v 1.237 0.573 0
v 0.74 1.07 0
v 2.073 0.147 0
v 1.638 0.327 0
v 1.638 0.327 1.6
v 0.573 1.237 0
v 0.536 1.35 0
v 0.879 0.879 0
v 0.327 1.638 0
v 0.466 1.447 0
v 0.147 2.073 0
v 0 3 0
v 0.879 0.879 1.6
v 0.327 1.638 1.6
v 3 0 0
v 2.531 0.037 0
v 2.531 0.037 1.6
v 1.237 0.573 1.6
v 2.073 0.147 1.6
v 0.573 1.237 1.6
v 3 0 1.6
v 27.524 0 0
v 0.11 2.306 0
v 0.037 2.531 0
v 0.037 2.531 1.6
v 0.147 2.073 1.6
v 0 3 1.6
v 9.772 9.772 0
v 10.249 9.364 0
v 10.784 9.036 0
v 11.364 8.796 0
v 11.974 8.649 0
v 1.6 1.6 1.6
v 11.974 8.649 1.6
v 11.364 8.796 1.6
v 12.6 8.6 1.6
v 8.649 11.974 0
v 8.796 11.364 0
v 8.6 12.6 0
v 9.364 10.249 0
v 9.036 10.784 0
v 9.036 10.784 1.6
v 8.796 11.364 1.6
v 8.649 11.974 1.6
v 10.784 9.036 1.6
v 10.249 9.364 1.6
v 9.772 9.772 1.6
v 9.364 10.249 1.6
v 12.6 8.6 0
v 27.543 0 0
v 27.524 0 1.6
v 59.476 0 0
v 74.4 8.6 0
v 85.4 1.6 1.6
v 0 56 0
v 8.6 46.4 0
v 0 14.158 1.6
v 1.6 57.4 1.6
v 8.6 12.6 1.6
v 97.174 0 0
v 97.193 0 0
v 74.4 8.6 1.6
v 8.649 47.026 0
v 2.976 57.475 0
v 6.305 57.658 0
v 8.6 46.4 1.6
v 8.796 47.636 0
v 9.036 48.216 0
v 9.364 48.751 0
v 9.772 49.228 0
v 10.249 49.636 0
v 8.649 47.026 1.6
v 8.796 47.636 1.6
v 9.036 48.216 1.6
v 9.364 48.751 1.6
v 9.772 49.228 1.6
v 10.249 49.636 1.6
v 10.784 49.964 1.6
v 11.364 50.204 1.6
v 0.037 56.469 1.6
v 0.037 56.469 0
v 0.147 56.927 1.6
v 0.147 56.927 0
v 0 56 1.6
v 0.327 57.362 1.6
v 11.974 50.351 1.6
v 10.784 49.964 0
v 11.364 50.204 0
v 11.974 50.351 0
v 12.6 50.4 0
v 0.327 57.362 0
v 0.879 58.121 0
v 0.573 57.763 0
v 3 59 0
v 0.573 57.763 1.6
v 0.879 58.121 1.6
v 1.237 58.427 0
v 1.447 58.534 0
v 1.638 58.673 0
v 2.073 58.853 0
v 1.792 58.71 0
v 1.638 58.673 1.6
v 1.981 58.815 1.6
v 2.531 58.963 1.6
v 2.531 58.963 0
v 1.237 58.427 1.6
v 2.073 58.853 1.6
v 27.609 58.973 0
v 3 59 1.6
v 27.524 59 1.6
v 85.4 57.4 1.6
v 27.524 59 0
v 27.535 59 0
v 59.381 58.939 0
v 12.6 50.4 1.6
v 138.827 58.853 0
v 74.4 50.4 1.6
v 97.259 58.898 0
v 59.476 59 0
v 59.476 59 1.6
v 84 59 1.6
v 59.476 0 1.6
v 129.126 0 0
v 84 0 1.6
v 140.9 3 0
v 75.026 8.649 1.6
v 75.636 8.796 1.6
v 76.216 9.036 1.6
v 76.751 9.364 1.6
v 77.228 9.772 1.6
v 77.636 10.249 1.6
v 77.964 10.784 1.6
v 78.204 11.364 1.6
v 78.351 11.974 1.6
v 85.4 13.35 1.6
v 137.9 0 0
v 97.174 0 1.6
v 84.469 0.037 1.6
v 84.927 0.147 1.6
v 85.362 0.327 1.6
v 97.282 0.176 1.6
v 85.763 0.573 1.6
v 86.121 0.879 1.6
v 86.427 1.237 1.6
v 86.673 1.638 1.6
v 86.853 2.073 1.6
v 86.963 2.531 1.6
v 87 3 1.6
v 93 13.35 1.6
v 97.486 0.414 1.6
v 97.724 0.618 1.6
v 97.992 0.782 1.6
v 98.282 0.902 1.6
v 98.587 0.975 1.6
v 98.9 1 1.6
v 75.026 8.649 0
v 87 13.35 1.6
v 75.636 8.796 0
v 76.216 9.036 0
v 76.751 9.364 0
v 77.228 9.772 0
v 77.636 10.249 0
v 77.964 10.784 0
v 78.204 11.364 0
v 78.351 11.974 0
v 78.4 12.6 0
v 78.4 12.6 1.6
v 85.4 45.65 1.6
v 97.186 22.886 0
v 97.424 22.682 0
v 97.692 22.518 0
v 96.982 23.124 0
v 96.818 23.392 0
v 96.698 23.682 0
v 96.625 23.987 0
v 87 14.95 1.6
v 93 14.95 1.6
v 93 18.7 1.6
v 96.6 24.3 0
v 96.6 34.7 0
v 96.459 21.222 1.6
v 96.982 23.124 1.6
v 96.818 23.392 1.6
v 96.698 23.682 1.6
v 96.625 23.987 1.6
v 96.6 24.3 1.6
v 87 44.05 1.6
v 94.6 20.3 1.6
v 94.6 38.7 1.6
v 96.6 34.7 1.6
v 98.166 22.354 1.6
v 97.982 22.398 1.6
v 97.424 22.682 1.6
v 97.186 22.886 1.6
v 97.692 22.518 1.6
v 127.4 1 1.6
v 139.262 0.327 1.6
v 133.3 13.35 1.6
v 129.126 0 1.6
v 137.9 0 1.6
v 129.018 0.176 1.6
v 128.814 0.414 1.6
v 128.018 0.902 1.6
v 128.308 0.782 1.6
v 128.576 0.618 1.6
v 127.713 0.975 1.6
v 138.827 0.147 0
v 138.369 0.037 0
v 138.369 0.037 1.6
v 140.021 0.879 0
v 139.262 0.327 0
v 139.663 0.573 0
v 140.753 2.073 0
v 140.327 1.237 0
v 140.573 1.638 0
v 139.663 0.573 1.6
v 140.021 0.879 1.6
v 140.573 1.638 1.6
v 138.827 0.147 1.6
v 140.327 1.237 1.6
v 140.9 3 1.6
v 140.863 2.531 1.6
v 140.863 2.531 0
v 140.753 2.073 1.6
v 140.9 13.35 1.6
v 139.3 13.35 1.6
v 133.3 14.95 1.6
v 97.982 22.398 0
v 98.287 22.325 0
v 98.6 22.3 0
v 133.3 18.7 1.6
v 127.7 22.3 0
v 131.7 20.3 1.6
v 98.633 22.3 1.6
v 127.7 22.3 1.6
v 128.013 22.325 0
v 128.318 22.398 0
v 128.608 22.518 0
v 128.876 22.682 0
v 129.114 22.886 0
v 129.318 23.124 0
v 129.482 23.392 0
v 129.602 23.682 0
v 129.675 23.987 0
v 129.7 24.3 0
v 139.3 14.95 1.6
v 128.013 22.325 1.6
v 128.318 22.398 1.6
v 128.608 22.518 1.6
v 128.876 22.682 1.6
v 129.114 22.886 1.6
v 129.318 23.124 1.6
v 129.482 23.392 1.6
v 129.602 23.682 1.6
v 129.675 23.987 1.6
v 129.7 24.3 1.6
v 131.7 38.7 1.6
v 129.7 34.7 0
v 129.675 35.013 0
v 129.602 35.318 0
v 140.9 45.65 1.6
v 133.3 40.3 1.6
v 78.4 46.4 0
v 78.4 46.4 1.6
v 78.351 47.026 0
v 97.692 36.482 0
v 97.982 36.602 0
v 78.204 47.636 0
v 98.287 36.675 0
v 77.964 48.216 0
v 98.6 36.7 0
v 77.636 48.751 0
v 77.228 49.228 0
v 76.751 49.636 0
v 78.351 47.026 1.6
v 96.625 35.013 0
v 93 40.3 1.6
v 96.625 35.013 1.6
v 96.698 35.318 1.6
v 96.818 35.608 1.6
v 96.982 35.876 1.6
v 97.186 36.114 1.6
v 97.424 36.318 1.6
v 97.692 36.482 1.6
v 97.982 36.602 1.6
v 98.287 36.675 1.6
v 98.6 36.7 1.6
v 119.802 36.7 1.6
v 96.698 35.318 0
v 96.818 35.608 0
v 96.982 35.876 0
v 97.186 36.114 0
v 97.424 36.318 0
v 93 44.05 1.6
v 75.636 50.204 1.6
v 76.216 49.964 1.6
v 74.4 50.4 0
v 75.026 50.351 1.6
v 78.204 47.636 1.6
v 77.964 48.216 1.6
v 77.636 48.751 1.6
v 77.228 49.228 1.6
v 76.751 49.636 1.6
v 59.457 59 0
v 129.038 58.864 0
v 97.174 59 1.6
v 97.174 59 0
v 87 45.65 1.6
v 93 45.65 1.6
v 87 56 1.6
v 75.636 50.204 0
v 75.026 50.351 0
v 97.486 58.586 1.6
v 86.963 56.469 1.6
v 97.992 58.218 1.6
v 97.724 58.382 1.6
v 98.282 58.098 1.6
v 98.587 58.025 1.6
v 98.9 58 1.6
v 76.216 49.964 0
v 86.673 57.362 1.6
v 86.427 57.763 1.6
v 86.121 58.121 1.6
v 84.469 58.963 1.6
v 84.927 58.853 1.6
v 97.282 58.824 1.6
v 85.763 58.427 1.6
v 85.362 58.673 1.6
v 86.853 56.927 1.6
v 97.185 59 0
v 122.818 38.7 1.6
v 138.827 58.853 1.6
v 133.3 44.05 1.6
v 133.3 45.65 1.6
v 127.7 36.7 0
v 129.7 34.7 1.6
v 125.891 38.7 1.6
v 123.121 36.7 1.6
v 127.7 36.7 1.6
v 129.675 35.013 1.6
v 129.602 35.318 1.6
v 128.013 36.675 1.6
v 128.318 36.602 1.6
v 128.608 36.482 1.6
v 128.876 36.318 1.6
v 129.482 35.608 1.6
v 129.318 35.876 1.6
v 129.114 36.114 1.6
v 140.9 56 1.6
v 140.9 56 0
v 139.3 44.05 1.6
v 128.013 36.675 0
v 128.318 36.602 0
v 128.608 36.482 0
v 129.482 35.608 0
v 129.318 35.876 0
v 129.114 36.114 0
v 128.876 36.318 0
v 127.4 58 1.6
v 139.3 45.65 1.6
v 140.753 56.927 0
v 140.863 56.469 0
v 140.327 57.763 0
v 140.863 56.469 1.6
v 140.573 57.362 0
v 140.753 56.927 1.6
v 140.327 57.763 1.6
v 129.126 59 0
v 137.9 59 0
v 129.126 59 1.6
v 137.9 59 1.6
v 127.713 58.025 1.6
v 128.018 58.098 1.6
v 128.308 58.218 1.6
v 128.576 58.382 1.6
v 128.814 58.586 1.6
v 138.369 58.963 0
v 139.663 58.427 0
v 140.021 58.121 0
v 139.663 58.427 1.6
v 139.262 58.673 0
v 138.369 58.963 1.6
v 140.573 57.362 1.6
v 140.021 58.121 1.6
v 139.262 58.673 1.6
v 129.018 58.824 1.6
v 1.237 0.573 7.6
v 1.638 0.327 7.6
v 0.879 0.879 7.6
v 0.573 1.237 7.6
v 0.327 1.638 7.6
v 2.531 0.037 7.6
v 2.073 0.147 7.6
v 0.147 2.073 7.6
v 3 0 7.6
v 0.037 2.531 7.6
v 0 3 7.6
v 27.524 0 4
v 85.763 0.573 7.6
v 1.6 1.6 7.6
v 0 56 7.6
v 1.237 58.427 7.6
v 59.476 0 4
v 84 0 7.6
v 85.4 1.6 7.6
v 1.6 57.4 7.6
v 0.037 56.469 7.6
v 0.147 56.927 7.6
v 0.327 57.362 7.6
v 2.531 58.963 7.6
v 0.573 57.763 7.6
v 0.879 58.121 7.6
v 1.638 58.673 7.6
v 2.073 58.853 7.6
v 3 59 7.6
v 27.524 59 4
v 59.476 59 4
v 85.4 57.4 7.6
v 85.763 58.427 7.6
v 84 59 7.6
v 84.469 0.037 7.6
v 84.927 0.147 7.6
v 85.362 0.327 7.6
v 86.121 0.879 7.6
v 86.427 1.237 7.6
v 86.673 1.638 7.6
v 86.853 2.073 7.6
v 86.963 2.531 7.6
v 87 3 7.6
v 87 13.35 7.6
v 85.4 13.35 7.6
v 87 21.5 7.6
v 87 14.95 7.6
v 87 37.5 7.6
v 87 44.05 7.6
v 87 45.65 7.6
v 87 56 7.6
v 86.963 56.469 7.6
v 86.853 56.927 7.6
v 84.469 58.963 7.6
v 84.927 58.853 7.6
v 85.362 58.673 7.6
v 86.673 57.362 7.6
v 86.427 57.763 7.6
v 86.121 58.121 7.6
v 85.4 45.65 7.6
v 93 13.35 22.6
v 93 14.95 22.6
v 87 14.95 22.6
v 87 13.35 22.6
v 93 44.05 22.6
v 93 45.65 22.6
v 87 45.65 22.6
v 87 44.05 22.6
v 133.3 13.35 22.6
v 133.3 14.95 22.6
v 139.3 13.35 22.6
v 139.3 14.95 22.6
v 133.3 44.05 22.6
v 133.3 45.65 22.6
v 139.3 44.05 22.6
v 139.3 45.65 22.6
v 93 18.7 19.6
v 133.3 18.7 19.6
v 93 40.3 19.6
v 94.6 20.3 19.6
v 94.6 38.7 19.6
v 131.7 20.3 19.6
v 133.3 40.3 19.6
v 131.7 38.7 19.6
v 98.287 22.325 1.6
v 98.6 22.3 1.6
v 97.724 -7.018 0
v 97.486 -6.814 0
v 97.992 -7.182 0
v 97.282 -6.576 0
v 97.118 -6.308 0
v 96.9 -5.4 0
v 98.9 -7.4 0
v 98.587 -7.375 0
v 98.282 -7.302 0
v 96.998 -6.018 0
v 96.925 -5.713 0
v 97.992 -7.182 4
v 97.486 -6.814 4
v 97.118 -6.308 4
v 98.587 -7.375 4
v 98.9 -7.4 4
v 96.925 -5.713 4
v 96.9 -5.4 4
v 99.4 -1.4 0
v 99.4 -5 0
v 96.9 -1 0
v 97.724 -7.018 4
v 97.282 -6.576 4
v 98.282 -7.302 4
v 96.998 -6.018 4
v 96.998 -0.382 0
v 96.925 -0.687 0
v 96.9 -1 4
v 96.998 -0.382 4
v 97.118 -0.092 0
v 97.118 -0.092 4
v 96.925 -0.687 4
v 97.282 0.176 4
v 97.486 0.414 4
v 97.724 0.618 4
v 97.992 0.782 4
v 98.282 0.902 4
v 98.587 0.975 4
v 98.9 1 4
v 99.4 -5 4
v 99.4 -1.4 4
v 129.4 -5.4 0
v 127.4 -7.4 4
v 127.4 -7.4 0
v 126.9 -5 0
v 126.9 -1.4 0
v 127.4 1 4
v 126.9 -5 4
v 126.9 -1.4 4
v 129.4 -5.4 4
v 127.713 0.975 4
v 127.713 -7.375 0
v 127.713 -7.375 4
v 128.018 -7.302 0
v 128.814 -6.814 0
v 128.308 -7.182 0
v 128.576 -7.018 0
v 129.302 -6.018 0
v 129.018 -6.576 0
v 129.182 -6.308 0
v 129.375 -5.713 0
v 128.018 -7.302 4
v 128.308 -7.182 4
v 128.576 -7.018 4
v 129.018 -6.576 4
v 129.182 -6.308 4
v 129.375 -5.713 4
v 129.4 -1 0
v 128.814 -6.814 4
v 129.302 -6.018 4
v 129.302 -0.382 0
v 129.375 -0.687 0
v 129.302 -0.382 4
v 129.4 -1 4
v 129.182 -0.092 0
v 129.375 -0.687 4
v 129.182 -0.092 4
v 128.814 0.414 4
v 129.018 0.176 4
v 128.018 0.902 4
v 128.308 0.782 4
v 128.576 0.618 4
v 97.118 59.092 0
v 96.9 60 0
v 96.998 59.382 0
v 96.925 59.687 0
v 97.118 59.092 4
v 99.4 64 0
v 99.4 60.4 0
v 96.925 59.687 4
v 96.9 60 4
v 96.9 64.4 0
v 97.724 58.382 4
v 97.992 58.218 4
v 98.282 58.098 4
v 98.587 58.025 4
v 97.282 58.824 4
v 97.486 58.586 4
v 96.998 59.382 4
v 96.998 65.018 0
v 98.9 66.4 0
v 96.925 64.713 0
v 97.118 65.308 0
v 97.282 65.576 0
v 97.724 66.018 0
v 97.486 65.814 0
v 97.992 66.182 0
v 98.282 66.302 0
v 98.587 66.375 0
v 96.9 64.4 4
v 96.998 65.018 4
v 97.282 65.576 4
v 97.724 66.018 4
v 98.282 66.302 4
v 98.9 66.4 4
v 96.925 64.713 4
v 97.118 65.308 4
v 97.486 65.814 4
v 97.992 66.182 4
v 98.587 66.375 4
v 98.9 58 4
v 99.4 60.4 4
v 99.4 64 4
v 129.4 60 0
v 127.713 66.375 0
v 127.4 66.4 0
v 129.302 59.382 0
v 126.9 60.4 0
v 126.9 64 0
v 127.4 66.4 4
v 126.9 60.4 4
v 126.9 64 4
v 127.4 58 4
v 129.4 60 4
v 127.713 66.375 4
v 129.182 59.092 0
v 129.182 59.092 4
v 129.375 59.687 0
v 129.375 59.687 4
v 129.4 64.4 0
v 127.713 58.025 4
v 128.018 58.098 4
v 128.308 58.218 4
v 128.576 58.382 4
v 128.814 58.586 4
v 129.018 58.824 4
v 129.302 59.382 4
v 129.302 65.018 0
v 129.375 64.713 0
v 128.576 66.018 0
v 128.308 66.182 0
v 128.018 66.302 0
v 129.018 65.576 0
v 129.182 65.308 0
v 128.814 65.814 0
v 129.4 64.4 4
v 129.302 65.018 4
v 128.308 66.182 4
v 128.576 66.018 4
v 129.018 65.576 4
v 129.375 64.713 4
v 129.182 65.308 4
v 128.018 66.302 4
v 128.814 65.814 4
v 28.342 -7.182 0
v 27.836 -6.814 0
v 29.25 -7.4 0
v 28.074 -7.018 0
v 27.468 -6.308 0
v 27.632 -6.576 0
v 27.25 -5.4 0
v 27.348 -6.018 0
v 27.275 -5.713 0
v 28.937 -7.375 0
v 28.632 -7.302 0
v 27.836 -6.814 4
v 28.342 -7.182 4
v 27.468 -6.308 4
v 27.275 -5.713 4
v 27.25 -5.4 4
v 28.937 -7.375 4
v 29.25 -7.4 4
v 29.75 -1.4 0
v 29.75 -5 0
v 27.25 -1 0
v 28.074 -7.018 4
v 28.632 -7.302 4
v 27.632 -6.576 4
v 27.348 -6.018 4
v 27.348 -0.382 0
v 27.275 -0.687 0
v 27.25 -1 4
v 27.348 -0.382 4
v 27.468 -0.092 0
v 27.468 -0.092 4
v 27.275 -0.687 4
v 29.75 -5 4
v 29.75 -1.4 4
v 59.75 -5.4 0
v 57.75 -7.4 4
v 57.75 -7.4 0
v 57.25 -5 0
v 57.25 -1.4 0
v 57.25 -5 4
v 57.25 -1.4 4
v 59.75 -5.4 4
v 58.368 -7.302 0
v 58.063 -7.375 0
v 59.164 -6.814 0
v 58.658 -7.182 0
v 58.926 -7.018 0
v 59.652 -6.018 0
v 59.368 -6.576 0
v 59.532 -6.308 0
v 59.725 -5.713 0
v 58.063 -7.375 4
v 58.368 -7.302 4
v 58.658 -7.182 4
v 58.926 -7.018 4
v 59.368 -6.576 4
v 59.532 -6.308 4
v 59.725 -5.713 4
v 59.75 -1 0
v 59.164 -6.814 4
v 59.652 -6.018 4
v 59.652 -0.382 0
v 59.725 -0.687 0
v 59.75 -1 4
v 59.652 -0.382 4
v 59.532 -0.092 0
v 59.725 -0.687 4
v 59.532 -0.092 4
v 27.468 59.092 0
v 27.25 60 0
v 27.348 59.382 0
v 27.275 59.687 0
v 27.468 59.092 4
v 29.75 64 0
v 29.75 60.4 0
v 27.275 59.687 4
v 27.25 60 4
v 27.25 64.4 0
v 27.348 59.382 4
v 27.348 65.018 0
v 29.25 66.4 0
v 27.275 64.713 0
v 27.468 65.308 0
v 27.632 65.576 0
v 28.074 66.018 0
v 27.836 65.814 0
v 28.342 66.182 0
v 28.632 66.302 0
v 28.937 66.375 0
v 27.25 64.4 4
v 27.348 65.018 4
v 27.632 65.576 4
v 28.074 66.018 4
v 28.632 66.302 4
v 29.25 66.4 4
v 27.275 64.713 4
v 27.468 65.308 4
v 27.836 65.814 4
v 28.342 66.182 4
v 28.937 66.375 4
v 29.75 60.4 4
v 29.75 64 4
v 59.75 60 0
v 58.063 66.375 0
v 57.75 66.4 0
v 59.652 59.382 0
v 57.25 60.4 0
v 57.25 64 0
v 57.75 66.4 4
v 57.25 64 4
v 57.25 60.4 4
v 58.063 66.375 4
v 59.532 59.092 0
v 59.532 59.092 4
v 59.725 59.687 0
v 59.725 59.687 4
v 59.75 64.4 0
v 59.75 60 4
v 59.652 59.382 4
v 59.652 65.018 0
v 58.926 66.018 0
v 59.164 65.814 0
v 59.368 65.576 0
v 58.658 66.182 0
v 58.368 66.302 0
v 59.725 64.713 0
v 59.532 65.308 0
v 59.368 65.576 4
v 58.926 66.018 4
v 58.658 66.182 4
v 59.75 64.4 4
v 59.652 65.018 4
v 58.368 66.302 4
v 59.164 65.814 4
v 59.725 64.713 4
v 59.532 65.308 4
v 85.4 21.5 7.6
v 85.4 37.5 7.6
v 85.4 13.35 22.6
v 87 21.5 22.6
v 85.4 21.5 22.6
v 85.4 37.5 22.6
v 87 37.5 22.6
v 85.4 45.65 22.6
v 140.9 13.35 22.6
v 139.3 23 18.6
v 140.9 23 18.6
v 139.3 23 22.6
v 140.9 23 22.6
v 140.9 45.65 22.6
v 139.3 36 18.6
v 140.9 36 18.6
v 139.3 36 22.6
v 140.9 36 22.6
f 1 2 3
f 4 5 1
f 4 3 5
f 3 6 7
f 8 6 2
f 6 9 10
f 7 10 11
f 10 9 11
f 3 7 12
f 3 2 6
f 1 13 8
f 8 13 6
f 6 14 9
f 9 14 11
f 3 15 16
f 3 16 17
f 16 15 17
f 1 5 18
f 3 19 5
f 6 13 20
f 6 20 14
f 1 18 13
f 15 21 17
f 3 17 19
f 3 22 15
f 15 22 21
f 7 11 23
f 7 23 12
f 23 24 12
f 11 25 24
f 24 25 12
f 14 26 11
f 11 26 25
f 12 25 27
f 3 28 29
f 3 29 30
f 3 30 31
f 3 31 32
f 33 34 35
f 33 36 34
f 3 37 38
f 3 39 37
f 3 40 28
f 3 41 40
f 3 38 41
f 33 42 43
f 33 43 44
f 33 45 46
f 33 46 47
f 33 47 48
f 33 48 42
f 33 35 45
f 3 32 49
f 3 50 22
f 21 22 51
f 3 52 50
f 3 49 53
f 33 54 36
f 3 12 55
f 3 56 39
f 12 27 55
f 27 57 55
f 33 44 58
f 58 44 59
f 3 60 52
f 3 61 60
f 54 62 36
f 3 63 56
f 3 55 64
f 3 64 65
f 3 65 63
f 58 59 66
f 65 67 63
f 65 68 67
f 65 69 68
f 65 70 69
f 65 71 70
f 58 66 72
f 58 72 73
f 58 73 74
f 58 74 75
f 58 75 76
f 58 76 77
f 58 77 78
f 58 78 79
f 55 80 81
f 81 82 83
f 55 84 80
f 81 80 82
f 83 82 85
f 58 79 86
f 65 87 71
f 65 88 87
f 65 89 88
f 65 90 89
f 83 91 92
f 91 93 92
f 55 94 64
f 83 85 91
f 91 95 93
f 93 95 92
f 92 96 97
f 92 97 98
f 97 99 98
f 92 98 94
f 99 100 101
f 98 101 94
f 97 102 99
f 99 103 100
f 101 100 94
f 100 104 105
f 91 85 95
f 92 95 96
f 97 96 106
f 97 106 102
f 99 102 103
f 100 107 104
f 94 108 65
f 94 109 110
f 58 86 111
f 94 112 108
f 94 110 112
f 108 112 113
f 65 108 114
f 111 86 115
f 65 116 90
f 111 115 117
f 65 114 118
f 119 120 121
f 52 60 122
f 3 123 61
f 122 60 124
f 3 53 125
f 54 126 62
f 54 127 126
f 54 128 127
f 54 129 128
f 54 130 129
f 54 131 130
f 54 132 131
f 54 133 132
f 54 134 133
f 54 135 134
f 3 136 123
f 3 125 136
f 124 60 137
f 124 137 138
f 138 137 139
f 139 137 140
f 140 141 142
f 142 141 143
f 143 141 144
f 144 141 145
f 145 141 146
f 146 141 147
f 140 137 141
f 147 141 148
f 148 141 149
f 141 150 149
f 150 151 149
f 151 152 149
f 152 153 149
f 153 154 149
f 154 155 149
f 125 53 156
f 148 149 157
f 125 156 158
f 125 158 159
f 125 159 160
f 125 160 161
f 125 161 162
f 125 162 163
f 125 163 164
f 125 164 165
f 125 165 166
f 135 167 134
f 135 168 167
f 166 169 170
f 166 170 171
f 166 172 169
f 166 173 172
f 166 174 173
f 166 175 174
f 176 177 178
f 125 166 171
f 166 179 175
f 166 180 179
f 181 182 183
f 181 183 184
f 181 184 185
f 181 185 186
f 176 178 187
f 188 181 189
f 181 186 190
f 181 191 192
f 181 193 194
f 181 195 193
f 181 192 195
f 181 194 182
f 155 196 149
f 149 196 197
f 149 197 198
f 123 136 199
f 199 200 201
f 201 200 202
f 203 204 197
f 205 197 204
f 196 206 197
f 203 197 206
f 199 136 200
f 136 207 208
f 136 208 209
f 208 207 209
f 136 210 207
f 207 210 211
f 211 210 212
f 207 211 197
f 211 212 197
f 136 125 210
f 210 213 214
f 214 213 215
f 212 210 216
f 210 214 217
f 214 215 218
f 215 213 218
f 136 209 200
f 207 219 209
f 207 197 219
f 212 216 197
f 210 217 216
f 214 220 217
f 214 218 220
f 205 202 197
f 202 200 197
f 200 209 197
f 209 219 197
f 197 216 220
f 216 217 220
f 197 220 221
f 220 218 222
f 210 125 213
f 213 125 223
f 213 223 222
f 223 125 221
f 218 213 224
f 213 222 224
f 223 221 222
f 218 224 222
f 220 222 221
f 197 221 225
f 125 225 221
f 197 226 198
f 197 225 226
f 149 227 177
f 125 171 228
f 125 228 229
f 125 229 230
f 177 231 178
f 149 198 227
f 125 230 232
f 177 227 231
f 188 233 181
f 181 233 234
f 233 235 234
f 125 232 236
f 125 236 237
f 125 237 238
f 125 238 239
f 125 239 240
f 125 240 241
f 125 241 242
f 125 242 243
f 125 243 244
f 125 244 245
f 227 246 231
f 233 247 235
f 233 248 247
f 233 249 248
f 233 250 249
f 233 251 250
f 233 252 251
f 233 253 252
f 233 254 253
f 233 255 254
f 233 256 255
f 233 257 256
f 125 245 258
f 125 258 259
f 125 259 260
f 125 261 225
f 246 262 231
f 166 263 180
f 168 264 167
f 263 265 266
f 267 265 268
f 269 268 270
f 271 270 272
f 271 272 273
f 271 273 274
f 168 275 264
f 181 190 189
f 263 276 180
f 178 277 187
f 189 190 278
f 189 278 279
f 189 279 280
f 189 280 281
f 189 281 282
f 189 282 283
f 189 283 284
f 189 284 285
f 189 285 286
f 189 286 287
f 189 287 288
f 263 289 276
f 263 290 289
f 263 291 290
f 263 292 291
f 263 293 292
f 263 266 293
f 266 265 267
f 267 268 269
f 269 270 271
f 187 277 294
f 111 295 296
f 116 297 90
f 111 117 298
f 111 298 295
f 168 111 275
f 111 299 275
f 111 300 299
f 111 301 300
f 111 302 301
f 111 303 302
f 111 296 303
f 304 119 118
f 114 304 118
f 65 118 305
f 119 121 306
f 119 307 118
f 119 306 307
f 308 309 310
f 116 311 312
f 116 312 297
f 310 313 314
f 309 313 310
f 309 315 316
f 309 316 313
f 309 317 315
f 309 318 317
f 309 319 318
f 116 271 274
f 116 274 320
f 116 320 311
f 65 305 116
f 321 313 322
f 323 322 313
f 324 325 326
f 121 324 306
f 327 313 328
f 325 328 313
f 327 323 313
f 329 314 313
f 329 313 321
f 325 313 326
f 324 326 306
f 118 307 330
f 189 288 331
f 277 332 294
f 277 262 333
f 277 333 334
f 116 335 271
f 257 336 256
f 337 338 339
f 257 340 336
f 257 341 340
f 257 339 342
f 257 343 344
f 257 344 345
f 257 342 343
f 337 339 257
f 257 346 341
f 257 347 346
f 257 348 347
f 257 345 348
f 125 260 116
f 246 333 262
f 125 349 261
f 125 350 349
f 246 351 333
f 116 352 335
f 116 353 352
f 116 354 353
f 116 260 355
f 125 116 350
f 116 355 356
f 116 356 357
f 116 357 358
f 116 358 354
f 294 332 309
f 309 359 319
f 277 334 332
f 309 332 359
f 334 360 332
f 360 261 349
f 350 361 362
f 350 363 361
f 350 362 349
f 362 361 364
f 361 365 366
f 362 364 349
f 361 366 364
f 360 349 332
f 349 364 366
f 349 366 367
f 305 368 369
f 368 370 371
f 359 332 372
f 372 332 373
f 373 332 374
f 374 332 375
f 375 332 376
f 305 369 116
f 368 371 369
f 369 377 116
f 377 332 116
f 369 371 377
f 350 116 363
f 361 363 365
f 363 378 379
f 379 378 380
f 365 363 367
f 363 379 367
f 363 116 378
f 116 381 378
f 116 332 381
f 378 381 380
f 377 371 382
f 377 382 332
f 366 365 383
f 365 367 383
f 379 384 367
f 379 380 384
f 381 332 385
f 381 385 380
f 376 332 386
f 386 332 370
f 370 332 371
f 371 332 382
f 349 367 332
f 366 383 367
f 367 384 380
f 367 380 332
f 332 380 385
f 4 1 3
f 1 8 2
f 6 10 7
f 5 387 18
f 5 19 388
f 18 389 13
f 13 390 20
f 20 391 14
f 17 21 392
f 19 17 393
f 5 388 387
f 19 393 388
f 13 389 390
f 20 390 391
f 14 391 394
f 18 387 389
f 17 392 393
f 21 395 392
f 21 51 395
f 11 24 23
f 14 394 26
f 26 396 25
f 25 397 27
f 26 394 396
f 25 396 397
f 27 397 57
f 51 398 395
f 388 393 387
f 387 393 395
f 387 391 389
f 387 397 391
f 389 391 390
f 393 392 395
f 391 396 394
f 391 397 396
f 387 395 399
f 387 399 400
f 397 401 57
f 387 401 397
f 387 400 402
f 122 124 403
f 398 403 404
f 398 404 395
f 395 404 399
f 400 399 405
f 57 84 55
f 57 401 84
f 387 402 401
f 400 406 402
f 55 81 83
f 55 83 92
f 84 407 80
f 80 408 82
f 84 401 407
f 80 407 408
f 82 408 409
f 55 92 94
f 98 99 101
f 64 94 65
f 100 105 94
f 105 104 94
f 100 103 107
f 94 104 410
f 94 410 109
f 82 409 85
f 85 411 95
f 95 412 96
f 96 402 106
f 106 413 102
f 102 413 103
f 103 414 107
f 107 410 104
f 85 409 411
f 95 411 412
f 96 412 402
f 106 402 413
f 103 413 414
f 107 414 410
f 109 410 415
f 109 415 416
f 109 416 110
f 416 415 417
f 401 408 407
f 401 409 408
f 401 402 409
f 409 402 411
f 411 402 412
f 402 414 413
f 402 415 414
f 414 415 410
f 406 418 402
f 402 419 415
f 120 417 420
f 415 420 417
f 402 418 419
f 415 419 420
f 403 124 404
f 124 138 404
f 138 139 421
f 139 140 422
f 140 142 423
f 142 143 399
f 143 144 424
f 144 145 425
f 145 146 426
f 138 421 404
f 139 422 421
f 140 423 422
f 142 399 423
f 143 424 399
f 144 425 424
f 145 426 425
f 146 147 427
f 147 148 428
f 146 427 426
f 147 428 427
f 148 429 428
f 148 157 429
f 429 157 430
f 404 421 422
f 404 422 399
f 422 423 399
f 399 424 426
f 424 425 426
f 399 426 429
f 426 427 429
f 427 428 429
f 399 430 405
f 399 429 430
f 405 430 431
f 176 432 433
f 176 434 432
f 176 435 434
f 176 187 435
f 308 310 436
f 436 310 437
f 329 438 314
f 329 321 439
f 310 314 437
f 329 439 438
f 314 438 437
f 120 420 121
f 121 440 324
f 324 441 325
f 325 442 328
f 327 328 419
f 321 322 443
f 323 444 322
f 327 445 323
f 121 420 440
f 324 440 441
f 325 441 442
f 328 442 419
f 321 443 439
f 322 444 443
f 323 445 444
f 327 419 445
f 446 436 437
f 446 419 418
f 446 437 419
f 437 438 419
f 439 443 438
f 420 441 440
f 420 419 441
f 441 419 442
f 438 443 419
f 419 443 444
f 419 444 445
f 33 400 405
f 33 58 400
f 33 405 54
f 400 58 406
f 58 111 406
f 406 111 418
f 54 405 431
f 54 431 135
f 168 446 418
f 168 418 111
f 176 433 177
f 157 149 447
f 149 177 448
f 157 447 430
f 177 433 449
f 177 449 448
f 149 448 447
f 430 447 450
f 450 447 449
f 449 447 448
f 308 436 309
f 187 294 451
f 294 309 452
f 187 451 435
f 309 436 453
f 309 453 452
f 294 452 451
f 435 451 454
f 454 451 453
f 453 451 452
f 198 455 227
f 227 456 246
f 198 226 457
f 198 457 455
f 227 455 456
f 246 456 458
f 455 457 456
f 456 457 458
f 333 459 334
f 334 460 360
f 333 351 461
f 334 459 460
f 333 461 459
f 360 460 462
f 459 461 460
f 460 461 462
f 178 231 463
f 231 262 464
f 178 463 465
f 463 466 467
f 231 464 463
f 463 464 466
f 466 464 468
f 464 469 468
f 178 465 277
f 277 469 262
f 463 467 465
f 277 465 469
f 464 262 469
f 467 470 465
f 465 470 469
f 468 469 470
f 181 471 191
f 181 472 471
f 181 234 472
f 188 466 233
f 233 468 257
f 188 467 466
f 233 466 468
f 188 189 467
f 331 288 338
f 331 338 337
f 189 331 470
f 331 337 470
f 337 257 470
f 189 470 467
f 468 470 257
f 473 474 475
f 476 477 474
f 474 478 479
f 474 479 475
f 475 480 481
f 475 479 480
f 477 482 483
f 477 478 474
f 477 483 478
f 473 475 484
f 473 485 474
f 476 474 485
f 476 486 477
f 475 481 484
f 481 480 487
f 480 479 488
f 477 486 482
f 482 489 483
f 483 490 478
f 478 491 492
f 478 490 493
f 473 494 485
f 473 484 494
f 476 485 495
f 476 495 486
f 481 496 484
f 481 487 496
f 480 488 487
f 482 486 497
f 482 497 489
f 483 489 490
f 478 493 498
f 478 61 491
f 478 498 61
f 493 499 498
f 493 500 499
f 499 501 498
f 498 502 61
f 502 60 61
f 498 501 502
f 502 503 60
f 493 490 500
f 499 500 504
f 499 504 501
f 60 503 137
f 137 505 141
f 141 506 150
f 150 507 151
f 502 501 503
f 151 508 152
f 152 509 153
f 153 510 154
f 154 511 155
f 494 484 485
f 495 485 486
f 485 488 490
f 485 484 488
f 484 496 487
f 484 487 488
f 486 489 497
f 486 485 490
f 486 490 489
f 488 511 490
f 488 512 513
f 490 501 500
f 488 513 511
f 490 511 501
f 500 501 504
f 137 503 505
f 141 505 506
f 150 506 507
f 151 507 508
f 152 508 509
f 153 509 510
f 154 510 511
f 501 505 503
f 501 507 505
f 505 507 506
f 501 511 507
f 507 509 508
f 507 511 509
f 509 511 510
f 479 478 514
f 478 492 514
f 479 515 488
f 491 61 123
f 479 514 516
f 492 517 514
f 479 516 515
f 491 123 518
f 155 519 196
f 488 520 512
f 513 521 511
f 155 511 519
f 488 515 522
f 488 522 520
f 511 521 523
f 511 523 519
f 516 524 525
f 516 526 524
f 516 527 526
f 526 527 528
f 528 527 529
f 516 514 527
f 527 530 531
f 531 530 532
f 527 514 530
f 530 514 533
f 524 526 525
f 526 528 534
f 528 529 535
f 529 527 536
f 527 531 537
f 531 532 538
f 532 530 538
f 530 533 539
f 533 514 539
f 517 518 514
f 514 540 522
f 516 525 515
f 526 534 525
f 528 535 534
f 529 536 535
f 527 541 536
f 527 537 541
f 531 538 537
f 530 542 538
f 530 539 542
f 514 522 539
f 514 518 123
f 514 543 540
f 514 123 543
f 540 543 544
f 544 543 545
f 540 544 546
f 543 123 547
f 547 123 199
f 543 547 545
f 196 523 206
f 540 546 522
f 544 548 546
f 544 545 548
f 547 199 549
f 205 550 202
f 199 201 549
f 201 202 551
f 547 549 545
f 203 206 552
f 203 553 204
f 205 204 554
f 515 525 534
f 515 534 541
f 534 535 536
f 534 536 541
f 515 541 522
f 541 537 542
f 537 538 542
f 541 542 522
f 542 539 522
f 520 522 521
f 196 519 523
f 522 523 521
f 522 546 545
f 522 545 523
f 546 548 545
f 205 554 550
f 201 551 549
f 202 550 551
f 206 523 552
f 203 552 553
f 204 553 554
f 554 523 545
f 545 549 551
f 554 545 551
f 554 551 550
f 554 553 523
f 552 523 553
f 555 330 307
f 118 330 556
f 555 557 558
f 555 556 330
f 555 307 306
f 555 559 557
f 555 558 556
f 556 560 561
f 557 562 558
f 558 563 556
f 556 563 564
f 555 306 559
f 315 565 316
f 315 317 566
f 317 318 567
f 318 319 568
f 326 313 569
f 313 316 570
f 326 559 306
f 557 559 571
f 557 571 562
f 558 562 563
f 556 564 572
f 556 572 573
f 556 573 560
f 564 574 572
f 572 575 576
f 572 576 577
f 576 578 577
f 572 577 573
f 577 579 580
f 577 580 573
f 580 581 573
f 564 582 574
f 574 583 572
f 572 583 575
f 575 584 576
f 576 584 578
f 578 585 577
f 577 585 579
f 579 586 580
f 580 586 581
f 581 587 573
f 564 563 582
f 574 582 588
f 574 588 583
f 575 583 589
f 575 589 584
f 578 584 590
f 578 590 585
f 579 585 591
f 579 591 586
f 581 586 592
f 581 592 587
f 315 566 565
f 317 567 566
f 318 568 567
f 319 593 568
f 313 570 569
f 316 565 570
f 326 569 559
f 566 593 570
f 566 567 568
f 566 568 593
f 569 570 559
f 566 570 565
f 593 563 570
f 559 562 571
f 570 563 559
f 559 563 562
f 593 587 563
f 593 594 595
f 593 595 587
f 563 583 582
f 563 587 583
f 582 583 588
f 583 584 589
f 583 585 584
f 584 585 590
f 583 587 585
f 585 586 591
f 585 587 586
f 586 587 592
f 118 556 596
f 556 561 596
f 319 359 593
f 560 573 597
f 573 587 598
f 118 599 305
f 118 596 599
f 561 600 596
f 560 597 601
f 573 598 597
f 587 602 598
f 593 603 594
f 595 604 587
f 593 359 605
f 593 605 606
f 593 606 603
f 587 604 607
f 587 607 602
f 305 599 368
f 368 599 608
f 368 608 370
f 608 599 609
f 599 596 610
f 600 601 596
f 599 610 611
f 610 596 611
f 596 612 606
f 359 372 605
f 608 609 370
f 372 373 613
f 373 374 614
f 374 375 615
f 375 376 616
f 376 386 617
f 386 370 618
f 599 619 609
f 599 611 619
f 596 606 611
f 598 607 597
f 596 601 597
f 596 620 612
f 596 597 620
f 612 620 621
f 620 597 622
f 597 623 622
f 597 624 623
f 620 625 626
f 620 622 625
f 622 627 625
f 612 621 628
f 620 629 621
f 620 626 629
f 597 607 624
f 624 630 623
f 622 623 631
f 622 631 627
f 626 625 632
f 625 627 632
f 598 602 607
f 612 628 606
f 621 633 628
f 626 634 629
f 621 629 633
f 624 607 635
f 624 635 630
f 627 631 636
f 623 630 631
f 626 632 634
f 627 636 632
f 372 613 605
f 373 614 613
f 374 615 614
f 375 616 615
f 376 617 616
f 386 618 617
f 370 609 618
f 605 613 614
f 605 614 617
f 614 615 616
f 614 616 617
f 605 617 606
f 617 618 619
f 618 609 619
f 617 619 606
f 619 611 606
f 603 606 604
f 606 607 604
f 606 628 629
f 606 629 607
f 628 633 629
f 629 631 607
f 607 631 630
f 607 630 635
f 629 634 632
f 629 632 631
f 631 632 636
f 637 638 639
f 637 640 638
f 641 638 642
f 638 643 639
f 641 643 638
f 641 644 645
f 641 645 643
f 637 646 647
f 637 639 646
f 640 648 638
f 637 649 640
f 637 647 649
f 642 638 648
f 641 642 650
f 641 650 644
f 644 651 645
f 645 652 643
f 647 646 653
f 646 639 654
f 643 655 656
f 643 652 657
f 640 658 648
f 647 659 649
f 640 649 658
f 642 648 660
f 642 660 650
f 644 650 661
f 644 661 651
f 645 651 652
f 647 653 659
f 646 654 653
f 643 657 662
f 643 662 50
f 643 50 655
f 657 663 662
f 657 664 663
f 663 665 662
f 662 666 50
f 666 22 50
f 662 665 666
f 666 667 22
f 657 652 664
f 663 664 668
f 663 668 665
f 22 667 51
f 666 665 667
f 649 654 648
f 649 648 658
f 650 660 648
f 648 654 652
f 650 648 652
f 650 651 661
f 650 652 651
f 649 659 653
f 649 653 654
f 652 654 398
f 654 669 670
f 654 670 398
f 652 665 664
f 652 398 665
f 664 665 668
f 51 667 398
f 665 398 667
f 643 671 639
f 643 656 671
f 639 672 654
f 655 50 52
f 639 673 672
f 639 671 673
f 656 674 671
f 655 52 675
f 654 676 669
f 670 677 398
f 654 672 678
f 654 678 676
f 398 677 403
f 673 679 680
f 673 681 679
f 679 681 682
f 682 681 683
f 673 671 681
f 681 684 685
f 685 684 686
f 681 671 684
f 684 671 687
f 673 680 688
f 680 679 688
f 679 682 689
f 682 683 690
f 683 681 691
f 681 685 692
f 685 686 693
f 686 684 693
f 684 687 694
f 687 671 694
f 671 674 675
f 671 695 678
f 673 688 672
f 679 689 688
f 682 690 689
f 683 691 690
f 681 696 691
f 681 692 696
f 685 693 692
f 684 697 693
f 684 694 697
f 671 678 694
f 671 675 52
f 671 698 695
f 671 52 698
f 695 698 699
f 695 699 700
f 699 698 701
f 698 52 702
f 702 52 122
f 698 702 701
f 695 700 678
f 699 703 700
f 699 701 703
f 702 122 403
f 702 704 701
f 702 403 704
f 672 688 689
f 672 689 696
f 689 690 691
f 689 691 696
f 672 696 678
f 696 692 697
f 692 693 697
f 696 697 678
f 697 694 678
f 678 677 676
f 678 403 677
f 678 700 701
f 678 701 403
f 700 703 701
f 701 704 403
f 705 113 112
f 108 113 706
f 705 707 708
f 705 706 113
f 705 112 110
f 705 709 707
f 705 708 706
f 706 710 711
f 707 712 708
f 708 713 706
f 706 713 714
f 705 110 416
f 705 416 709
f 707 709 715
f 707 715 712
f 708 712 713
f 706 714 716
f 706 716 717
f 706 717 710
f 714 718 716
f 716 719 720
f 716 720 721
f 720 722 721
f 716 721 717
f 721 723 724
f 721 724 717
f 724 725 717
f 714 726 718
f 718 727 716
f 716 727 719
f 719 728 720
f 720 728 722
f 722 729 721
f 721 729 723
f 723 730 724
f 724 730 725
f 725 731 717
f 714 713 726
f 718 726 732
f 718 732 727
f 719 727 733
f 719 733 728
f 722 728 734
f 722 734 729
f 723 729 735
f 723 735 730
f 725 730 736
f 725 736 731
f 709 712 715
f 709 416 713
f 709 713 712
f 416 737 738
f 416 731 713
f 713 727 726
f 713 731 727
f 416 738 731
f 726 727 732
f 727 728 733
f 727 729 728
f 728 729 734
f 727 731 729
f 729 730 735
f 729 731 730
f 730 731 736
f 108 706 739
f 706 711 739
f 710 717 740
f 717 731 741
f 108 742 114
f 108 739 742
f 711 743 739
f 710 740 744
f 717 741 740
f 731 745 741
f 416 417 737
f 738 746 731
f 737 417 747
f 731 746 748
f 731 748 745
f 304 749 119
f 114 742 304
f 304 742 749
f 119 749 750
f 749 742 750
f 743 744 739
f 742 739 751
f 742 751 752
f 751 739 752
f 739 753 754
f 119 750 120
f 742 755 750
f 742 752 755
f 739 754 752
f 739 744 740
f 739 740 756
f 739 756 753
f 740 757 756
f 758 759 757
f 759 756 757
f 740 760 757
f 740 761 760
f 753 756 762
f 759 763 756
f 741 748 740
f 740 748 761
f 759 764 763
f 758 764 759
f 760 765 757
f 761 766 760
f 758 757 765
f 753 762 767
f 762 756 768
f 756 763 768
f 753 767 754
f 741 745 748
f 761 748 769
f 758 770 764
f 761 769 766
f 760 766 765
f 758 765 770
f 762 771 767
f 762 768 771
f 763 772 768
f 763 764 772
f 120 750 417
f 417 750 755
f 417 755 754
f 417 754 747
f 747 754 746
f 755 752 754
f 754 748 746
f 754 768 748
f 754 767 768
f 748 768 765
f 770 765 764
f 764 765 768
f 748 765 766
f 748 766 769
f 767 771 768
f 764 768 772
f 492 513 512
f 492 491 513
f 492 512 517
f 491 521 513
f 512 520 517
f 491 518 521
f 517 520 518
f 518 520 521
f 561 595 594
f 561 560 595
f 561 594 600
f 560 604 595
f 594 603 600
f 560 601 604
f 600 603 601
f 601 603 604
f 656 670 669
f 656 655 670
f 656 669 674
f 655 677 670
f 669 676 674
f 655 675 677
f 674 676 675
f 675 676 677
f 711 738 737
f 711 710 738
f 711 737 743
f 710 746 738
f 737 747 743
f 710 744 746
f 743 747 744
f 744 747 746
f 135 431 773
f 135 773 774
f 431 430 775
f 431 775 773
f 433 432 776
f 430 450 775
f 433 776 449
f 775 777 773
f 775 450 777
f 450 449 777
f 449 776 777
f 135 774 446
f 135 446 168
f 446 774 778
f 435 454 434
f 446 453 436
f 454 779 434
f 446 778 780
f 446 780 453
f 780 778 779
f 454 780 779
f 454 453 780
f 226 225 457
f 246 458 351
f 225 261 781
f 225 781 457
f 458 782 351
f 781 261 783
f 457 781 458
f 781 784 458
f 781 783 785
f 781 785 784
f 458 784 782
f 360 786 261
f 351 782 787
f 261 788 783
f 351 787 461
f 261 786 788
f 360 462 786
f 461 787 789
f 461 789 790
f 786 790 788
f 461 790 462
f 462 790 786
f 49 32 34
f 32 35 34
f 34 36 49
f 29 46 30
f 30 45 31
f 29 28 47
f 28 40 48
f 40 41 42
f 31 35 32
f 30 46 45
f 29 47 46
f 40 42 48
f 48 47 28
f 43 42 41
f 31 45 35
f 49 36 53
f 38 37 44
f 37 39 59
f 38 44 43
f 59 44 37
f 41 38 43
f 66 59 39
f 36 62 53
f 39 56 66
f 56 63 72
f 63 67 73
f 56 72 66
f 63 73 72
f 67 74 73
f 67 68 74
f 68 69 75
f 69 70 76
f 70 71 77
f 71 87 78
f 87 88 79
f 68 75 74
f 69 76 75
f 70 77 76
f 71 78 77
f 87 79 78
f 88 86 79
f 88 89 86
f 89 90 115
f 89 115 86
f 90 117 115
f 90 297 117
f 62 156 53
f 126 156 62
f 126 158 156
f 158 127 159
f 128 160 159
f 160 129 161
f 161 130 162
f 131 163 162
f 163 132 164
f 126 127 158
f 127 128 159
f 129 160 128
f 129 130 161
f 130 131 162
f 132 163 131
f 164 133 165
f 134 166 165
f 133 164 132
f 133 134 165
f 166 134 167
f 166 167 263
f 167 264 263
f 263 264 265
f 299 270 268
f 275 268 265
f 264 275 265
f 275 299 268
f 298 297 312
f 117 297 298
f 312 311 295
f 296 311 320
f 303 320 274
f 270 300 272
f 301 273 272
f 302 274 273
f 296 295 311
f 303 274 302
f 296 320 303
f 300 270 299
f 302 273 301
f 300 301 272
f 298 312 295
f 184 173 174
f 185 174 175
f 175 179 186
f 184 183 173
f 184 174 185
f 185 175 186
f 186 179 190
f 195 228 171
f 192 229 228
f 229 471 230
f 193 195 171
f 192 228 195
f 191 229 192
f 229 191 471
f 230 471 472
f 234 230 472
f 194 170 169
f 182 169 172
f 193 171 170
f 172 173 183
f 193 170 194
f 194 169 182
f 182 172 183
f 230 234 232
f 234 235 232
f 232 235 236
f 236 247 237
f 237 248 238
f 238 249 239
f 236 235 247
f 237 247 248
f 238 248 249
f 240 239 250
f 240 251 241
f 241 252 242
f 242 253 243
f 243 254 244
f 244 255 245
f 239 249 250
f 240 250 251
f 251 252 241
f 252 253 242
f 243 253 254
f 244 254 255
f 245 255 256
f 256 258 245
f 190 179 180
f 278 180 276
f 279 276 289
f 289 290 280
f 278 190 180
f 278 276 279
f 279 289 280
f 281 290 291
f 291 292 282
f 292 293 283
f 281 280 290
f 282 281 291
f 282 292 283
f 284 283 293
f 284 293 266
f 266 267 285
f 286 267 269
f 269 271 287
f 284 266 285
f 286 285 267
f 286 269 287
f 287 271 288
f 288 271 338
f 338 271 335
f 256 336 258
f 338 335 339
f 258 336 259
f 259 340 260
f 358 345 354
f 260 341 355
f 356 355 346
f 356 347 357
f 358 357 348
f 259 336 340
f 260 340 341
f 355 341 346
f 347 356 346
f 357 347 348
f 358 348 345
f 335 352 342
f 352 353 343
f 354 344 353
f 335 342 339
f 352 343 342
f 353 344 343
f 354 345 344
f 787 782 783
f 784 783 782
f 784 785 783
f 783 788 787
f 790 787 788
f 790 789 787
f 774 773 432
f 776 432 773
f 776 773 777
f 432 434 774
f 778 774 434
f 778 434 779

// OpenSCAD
// WristTap SLED: one open tray for the half breadboard + ESP32. Fast print, little plastic.
// Open top: you can pull any wire or change the layout without opening anything.
//
//   [ ESP32 on a rib frame ][ half breadboard pocket ]   ← straps go across the arm through the 4 slots
//
// To change it: edit the numbers below, then in OpenSCAD press F6 and File > Export > STL.
// Every value is in millimetres. "(measure)" = check on your own part.

/* [Half breadboard, 400 point] */
bb_l    = 83.0;   // length, row 1 to row 30 end (measure)
bb_w    = 55.0;   // width (measure)
bb_wall = 6.0;    // how high the pocket walls hold the board

/* [ESP32 DevKit, 30 pin] */
esp_l   = 51.5;   // USB end to antenna end (measure)
esp_w   = 28.3;   // (measure)
row_gap = 25.4;   // distance between the two pin rows
plug_h  = 14.0;   // female jumper plug length under the board (measure)
bend    = 4.0;    // room for the jumper wire to bend sideways under the plug
usb_w   = 13.0;   // opening for the USB plug

/* [Strap] */
strap_w = 25.0;   // velcro strap width
strap_t = 2.6;    // strap thickness (measure)

/* [Print] */
tol     = 0.4;    // gap around each part (0.5 if tight, 0.3 if loose)
wall    = 1.6;    // 4 lines of a 0.4 nozzle
floor_t = 1.6;
rib     = 1.6;

part = "sled";    // "sled" or "view" (sled with dummy parts, for a picture)

/* [Hidden] */
$fn = 40;
pw = bb_w + 2*tol;                 // pocket inner width
W  = pw + 2*wall;                  // tray width (across the arm)
Lb = bb_l + 2*tol;                 // breadboard pocket length
Le = esp_l + 2*tol;                // ESP bay length
xb = wall;                         // breadboard pocket start
xm = xb + Lb;                      // middle wall
xe = xm + wall;                    // ESP bay start
L  = xe + Le + wall;               // tray length (along the arm)
rib_h = plug_h + bend;             // ESP board sits on top of the ribs
pcb_z = floor_t + rib_h;
end_h = pcb_z + 3;                 // end walls hold the ESP board 3 mm up its edge
rib_w = row_gap - 2.6 - 2*0.6;     // inner rib frame fits between the two plug rows
slot_l = strap_w + 2.5;
slot_t = strap_t + 1.0;
wing   = slot_t + 2*2.4;           // wing sticks out this far each side
wing_h = 4.0;

module rbox(s, r=2) { hull() for (x=[r, s[0]-r], y=[r, s[1]-r]) translate([x, y, 0]) cylinder(r=r, h=s[2]); }

module strap_wings(xc) {
    for (s=[0,1]) translate([xc - (slot_l+5)/2, s ? W - 1 : -wing + 1, 0])
        difference() {
            rbox([slot_l + 5, wing, wing_h], 2);
            translate([2.5, s ? wing - 2.4 - slot_t - 1 + 1 : 2.4, -1]) cube([slot_l, slot_t, wing_h + 2]);
        }
}

module sled() {
    difference() {
        union() {
            rbox([L, W, floor_t], 3);                                                          // floor
            // breadboard pocket walls
            difference() { rbox([xm + wall, W, floor_t + bb_wall], 3); translate([xb, wall, -1]) cube([Lb, pw, 50]); }
            // ESP end walls (middle wall is shared)
            translate([xm, W/2 - (esp_w + 2*tol)/2 - wall, 0]) cube([wall, esp_w + 2*tol + 2*wall, end_h]);   // tall only behind the ESP, wires pass over the rest
            translate([L - wall, W/2 - (esp_w + 2*tol)/2 - wall, 0]) cube([wall, esp_w + 2*tol + 2*wall, end_h]);
            // ESP side guides: short corner posts, wires leave freely between them
            for (x=[xe, L - wall - 6], s=[-1,1])
                translate([x, W/2 + s*(esp_w/2 + tol) + (s<0 ? -wall : 0), 0]) cube([6, wall, end_h]);
            // rib frame the ESP board rests on (between the two rows of jumper plugs)
            translate([xe + 6, W/2 - rib_w/2, 0]) difference() {
                cube([Le - 12, rib_w, pcb_z]);
                translate([rib, rib, floor_t]) cube([Le - 12 - 2*rib, rib_w - 2*rib, 50]);
            }
            strap_wings(xb + Lb/2);
            strap_wings(xe + Le/2);
        }
        // save plastic: big window under the breadboard (it rests on the 7 mm rim)
        translate([xb + 7, wall + 7, -1]) rbox([Lb - 14, pw - 14, floor_t + 2], 4);
        // window under the ESP, inside the rib frame
        translate([xe + 6 + rib + 2, W/2 - rib_w/2 + rib + 2, -1]) rbox([Le - 12 - 2*rib - 4, rib_w - 2*rib - 4, floor_t + 2], 2);
        // USB opening in the far end wall
        translate([L - wall - 1, W/2 - usb_w/2, pcb_z - 1]) cube([wall + 2, usb_w, 50]);
        // finger notch on the middle wall above the breadboard, to lift the board out
        translate([xm - 1, W/2 - 8, floor_t + bb_wall]) cube([wall + 2, 16, 50]);
    }
}

module dummies() {
    color("ivory") translate([xb + tol, wall + tol, floor_t]) cube([bb_l, bb_w, 8.5]);
    color("#1f2b3a") translate([xe + tol, W/2 - esp_w/2, pcb_z]) cube([esp_l, esp_w, 1.6]);
    color("dimgray") for (s=[-1,1]) translate([xe + tol + 6.7, W/2 + s*row_gap/2 - 1.25, pcb_z - plug_h]) cube([38.1, 2.5, plug_h]);
}

if (part == "sled") sled();
if (part == "view") { color("#f2b134") sled(); dummies(); }
echo(str("SLED size: ", L, " x ", W + 2*wing - 2, " x ", end_h, " mm"));
